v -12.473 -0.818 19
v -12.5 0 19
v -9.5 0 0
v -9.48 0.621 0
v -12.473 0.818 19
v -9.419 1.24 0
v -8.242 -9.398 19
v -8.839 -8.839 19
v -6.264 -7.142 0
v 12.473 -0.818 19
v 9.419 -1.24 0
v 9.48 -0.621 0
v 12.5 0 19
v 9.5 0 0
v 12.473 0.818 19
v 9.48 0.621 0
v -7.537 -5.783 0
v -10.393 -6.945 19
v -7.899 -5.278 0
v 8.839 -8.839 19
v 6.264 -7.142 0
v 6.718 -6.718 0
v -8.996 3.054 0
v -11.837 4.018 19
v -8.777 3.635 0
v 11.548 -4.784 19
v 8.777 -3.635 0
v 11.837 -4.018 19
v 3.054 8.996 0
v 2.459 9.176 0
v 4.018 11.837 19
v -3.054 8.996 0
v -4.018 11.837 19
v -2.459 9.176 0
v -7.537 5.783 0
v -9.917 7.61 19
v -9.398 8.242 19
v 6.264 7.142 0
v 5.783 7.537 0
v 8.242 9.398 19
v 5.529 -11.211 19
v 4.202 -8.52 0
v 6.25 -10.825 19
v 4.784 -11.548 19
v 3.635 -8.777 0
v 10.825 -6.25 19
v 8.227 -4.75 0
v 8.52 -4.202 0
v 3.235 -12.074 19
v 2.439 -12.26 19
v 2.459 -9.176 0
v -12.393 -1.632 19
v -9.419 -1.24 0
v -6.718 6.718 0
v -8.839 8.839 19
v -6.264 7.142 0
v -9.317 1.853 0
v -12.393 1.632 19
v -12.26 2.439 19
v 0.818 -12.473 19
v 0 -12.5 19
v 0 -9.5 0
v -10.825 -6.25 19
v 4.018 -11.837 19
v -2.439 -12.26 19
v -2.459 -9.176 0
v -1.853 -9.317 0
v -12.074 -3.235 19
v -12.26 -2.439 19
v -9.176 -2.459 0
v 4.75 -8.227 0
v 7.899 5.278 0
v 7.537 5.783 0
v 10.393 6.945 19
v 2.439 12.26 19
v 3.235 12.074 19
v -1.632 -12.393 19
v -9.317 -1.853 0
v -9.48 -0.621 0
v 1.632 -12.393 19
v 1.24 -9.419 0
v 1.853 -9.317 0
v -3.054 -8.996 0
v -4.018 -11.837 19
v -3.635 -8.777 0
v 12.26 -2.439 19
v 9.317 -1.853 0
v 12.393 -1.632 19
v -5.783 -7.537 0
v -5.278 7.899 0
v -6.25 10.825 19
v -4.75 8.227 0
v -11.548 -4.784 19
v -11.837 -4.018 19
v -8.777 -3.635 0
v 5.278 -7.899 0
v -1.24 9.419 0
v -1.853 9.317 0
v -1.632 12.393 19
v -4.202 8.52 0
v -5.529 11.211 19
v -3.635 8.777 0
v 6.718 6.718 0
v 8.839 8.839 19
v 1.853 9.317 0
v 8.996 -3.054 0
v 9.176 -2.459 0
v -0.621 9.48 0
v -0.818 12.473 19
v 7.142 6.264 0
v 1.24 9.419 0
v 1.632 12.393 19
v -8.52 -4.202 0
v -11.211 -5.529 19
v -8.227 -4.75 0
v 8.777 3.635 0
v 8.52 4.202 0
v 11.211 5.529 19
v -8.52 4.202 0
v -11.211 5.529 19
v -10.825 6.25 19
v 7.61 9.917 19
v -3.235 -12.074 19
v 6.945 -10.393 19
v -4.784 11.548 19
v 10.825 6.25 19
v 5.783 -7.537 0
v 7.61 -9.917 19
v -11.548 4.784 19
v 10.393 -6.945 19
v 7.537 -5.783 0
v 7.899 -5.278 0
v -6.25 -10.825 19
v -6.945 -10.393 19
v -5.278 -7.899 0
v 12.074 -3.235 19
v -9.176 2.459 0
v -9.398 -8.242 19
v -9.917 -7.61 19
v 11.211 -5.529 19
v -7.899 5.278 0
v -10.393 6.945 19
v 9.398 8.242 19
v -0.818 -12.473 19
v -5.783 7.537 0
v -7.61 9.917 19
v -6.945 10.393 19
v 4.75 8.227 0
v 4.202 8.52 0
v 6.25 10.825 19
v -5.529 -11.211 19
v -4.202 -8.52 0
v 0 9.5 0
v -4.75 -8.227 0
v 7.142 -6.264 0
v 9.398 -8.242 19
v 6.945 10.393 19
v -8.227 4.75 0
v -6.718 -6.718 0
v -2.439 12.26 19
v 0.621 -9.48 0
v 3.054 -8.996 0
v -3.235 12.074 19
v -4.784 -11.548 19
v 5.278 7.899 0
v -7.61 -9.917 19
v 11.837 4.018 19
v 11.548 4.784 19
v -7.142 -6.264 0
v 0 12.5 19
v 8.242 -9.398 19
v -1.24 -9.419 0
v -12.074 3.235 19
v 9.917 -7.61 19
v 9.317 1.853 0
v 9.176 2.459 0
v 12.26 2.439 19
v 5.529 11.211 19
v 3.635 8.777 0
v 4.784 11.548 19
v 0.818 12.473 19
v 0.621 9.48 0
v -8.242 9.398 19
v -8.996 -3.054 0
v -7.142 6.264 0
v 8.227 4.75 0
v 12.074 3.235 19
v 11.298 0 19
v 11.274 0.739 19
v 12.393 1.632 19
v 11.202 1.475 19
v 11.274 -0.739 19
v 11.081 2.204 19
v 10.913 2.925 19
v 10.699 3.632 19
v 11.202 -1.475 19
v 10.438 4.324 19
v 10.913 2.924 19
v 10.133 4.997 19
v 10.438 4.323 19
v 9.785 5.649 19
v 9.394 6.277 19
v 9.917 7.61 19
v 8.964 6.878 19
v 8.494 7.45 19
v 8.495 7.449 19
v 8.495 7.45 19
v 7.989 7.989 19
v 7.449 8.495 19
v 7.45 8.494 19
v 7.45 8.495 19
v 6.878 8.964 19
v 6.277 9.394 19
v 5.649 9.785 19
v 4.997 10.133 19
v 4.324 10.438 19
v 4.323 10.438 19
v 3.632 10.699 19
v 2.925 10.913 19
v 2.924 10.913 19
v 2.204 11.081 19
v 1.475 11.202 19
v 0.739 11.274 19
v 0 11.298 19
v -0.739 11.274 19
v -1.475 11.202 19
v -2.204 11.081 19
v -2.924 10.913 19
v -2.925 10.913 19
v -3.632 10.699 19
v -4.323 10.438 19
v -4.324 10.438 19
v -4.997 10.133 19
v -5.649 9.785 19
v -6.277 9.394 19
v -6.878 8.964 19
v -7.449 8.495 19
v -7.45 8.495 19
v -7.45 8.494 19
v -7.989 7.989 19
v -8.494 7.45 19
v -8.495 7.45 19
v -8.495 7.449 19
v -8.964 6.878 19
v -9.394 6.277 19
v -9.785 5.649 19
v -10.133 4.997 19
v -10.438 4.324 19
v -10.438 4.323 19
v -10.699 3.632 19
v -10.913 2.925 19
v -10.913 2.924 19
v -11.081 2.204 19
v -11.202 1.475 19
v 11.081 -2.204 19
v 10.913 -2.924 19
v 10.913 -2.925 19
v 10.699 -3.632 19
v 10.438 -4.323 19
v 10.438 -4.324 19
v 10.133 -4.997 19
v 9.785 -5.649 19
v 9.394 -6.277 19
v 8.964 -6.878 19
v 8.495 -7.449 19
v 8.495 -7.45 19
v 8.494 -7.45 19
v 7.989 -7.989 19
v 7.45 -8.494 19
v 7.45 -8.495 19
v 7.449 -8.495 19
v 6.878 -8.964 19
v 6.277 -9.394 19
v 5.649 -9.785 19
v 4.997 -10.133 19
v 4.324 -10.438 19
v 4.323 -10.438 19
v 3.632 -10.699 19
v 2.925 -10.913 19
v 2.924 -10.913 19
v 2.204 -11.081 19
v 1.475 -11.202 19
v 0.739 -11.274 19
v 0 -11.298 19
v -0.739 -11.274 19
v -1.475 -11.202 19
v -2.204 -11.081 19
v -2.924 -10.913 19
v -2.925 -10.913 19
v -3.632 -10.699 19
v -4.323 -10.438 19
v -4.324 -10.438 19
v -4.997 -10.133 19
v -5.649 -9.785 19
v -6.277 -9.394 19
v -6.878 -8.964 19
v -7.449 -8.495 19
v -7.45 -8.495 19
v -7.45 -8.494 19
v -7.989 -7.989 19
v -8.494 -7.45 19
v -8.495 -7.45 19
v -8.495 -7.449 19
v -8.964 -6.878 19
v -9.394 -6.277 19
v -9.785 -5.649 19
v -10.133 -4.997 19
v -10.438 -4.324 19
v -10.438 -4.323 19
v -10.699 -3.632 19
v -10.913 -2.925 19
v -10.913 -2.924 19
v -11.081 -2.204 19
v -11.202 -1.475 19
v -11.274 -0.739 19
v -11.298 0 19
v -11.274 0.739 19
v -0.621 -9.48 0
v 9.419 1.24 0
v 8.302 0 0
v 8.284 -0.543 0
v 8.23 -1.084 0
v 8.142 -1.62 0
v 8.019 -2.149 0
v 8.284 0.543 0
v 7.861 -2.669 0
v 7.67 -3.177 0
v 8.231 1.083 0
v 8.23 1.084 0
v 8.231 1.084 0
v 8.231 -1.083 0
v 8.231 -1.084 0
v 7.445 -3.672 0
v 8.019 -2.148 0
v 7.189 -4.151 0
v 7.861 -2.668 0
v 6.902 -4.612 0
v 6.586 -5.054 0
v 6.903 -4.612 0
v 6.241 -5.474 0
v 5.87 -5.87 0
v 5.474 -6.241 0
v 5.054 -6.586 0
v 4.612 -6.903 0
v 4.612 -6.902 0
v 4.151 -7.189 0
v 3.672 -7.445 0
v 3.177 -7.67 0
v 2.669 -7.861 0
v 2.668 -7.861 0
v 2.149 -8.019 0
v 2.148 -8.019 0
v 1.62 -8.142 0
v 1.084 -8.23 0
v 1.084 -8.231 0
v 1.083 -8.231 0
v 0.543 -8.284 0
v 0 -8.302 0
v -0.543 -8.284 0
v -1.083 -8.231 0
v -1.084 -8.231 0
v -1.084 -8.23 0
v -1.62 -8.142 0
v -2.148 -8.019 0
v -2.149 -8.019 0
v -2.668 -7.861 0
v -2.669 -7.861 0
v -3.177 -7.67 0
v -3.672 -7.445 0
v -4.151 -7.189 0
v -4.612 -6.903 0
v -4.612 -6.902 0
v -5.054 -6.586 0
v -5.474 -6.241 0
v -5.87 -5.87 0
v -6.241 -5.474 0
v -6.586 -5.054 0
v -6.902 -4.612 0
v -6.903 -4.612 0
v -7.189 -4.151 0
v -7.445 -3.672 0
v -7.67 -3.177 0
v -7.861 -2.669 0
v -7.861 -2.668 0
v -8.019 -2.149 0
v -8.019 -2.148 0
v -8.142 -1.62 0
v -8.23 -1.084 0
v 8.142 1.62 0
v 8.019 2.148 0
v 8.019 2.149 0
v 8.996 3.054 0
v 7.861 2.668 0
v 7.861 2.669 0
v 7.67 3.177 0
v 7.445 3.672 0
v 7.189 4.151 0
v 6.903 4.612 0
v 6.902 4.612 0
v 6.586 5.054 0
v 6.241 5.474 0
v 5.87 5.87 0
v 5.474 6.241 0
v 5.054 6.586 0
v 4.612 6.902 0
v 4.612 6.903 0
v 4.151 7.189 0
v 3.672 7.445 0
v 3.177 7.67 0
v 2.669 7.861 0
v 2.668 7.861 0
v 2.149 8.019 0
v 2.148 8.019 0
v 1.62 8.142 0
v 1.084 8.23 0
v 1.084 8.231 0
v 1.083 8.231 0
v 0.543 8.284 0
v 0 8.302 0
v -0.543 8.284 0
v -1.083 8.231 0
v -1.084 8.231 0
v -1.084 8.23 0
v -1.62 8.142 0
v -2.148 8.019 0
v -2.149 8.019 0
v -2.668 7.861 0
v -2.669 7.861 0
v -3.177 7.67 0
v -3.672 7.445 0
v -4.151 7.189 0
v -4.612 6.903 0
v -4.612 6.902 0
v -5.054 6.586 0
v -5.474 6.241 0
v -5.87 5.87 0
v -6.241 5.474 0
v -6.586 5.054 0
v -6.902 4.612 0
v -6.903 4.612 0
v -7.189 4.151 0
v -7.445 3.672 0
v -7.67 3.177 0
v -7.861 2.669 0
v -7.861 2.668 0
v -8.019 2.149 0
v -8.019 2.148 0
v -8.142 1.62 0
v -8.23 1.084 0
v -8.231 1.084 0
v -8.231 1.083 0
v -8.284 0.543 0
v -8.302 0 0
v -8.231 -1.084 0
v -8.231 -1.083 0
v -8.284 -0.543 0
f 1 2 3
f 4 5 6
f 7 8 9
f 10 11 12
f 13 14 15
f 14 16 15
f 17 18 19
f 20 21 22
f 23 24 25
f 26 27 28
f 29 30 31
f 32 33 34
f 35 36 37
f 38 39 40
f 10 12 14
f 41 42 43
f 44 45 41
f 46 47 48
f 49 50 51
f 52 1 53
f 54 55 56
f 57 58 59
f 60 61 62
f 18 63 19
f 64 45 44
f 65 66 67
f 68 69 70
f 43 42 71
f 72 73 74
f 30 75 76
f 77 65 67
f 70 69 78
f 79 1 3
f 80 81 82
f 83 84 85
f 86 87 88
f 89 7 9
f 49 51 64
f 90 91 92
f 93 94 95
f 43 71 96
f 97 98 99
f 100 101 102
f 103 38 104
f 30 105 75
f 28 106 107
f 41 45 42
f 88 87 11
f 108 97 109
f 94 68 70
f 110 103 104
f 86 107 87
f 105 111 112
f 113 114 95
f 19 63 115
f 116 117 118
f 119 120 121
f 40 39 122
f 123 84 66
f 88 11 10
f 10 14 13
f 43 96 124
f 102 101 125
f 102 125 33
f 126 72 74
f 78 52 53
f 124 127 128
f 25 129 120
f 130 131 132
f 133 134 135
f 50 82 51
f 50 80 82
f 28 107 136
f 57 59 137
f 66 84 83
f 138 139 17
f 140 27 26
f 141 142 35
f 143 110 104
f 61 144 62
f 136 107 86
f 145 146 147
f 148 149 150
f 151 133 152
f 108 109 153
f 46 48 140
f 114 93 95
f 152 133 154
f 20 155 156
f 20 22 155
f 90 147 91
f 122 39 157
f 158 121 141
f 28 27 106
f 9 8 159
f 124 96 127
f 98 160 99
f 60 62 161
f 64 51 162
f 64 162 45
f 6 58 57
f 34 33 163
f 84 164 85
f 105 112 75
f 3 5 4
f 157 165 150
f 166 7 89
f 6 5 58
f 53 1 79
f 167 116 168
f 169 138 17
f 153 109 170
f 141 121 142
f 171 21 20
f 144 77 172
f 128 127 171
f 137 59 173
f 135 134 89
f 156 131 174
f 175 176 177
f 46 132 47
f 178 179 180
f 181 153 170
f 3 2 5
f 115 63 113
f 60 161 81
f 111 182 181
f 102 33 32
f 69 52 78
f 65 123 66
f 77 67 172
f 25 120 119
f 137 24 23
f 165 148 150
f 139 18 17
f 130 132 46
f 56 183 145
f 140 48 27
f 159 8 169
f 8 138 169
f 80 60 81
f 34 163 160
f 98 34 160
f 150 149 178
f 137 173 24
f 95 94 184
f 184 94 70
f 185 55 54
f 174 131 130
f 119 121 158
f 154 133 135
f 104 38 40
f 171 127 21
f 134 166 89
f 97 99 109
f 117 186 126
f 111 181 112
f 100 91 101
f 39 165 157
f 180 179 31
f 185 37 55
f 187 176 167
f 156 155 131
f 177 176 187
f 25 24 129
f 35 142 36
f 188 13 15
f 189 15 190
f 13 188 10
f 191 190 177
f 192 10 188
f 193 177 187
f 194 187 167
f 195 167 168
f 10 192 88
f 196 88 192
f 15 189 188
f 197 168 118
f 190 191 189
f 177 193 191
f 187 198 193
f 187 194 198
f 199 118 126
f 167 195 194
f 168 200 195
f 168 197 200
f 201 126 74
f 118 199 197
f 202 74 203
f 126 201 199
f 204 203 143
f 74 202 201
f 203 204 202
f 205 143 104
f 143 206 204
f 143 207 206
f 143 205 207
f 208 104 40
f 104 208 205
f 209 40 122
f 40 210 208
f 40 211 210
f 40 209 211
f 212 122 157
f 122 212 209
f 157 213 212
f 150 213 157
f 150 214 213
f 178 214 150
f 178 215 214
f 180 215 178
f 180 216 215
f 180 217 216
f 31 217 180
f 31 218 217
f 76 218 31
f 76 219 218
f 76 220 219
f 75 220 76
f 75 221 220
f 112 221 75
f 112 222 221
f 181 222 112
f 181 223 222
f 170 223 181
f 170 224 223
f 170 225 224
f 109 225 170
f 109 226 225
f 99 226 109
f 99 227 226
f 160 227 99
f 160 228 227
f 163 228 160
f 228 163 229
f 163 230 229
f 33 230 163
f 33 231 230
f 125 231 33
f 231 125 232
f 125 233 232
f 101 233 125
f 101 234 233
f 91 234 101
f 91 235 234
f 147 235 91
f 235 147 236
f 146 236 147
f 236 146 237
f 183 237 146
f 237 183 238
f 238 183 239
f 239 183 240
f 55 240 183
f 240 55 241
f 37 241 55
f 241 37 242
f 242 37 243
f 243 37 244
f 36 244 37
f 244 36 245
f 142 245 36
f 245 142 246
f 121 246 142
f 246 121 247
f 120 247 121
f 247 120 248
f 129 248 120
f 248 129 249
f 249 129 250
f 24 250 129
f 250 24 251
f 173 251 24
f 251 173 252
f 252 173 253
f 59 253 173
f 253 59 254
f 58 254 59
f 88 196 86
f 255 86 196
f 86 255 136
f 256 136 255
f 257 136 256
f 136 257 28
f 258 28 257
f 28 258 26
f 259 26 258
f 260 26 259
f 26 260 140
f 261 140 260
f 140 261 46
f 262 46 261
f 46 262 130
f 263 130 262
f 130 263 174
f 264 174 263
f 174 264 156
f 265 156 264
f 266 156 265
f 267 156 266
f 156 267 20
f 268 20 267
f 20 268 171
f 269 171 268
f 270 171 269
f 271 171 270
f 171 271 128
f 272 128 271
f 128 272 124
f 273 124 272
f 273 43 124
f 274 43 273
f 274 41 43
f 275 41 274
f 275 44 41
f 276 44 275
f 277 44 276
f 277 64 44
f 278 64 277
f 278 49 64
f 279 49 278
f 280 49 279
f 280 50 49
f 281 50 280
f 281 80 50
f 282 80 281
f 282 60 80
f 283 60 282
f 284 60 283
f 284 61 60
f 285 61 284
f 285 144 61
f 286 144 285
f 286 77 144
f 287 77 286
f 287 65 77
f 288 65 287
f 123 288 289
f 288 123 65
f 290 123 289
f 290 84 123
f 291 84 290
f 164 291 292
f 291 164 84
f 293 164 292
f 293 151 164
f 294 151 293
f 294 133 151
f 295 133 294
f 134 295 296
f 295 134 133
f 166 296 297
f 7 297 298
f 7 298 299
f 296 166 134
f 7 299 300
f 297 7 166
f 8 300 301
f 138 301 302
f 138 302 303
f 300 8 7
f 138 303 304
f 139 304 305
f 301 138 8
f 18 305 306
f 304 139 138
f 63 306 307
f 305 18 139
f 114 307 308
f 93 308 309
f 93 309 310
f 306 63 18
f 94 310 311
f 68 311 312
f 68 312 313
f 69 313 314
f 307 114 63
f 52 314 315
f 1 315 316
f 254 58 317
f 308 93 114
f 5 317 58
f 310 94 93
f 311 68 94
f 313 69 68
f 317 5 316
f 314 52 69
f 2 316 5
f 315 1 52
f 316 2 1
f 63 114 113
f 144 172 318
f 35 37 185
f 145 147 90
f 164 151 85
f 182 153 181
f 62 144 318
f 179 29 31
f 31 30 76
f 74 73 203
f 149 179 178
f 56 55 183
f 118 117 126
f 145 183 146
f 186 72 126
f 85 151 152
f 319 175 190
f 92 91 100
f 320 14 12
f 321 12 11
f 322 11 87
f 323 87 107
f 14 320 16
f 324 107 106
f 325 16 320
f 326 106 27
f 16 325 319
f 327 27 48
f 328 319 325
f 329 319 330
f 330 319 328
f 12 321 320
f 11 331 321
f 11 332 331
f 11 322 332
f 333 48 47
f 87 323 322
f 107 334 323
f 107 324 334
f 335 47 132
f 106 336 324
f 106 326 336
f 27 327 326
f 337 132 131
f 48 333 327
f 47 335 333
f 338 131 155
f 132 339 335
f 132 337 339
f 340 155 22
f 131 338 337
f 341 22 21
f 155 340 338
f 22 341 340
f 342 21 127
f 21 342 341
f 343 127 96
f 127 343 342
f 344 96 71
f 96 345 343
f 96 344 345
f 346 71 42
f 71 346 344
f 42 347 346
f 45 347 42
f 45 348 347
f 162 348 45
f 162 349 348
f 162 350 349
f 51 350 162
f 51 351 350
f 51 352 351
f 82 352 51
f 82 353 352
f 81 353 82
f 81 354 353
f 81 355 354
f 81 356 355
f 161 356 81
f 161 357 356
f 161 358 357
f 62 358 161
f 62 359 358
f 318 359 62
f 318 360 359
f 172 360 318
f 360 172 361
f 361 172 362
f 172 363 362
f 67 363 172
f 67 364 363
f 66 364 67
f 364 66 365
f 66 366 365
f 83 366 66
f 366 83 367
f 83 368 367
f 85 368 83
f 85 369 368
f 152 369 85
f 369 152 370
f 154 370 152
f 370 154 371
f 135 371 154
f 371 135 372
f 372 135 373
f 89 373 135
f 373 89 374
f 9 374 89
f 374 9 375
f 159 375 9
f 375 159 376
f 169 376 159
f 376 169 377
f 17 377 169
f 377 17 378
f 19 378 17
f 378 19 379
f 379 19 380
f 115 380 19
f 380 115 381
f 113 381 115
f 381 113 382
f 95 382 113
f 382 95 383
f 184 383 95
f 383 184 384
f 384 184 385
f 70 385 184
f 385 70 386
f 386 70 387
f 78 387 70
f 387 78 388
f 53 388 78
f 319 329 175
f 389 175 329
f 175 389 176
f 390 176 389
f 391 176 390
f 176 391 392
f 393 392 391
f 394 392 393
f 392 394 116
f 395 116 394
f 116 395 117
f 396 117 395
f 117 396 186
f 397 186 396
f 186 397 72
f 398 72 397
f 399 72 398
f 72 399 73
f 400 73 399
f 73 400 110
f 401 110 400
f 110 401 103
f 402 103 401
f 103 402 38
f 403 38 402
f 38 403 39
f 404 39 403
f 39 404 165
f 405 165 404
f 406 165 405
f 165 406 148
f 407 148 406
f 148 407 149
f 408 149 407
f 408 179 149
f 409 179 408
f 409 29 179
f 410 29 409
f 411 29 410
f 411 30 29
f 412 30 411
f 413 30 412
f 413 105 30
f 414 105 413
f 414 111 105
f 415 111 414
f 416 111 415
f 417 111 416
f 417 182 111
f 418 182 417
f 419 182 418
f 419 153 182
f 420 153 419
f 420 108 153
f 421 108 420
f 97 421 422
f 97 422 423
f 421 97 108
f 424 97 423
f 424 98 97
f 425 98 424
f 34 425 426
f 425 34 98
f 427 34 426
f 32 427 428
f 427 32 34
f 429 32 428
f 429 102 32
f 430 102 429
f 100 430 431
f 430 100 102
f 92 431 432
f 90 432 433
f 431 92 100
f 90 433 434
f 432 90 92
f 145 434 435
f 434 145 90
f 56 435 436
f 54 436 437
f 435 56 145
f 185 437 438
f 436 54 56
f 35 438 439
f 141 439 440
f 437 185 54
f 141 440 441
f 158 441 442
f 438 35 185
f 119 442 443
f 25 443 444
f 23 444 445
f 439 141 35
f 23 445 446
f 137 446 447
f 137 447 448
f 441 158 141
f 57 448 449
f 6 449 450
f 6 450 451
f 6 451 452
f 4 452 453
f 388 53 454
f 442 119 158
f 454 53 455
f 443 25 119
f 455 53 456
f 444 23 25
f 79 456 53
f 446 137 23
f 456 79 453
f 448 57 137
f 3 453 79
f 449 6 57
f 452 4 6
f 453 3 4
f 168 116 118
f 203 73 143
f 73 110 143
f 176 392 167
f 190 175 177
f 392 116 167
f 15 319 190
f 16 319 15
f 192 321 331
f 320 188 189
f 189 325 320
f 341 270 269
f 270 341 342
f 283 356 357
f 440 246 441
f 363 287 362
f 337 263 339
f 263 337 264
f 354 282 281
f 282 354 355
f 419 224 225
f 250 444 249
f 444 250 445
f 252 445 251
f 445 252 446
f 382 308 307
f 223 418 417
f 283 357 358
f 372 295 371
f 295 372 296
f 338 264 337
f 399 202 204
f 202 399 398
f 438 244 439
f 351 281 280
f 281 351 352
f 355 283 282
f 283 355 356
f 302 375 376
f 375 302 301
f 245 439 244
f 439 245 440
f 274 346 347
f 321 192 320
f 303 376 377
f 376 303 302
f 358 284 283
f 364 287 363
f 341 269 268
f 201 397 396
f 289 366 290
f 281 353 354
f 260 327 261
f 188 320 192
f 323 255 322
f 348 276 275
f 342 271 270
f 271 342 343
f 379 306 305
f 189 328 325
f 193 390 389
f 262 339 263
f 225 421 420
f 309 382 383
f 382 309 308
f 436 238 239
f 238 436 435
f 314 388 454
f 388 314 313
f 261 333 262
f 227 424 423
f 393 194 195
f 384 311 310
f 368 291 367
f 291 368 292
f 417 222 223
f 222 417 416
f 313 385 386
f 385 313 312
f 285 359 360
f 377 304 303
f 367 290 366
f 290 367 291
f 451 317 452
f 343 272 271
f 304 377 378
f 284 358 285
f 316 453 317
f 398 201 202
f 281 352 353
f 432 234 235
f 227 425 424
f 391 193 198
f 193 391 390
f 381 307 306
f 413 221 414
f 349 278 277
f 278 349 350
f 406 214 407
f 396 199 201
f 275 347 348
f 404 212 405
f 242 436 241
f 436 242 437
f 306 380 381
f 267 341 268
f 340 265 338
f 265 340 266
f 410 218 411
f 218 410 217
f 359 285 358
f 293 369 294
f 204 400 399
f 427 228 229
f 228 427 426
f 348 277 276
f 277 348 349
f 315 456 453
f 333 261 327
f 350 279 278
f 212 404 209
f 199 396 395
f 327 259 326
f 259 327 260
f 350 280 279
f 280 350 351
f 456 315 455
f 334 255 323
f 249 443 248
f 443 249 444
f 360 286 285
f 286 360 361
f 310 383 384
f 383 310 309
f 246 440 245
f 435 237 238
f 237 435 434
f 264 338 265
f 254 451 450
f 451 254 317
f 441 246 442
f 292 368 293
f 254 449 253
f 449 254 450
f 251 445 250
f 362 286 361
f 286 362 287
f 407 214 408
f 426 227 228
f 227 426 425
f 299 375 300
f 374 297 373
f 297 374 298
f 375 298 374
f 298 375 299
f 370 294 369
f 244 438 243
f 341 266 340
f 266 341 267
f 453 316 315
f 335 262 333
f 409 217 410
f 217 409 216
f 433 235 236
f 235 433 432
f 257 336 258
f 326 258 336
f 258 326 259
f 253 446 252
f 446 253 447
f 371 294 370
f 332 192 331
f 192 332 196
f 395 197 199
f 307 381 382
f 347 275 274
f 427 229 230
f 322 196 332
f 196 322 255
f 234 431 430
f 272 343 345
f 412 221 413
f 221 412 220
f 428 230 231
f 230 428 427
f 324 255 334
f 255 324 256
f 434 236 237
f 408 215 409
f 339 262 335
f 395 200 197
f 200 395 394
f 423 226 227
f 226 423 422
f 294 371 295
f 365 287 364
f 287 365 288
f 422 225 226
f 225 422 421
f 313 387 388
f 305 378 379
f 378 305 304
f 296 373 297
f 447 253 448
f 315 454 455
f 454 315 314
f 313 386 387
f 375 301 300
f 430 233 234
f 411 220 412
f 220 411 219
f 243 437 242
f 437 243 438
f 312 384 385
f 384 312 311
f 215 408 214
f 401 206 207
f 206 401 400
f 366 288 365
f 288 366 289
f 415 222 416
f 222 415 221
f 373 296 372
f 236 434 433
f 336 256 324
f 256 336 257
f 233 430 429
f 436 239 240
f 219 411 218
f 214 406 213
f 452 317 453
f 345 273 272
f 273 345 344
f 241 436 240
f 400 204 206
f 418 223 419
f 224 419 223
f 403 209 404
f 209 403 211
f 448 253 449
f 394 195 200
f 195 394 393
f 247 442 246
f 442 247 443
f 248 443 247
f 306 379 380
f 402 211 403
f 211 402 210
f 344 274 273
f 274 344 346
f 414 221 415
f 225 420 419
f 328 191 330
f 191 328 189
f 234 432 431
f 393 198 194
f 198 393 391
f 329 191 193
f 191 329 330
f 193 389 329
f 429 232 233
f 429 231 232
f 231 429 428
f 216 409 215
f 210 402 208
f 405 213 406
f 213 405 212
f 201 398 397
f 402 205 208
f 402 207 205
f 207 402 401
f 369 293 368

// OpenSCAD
// Feeder funnel for the 75 gal: guides food from the MA-Feeder into the tank.
// Outside dimensions: 25 mm across the flared top, 19 mm across the
// bottom, 19 mm tall (v3, 2026-11-11; v2 15/13/20, v1 11/9.5/16). Print in PETG as modelled, narrow end on the bed: the
// wall flares about 9 degrees off vertical, so it needs no supports. 0.2 mm layers,
// 3+ walls so the 1.2 mm wall prints solid.

top_od    = 25.0;   // outside diameter at the feeder end
bottom_od = 19.0;   // outside diameter at the tank end
height    = 19.0;
wall      = 1.2;    // 3 x 0.4 mm perimeters
$fn = 96;

difference() {
    cylinder(h = height, d1 = bottom_od, d2 = top_od);
    // Bore follows the outside taper, open at both ends.
    translate([0, 0, -0.01])
        cylinder(h = height + 0.02, d1 = bottom_od - 2 * wall, d2 = top_od - 2 * wall);
}
